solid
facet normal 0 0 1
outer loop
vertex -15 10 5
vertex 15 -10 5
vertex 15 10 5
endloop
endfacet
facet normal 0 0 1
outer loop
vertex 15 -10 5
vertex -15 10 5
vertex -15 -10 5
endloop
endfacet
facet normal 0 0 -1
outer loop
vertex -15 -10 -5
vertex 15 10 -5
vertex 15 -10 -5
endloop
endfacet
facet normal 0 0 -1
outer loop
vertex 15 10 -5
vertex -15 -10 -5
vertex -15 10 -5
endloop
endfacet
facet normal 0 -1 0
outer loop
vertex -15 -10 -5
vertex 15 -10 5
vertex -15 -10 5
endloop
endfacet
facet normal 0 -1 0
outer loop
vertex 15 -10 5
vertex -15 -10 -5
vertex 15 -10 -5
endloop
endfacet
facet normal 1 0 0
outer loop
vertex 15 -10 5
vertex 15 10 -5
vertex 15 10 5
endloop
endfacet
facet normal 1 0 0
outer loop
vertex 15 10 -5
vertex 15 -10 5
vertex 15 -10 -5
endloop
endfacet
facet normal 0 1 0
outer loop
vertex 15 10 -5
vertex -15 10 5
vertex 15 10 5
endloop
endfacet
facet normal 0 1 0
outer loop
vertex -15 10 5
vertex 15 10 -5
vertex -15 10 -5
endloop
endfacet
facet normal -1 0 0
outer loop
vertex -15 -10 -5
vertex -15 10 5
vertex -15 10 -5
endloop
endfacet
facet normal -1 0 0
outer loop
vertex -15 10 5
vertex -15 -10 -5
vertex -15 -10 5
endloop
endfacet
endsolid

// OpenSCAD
// applied test
width = 30;
depth = 20;
height = 10;

cube([width, depth, height], center=true);
